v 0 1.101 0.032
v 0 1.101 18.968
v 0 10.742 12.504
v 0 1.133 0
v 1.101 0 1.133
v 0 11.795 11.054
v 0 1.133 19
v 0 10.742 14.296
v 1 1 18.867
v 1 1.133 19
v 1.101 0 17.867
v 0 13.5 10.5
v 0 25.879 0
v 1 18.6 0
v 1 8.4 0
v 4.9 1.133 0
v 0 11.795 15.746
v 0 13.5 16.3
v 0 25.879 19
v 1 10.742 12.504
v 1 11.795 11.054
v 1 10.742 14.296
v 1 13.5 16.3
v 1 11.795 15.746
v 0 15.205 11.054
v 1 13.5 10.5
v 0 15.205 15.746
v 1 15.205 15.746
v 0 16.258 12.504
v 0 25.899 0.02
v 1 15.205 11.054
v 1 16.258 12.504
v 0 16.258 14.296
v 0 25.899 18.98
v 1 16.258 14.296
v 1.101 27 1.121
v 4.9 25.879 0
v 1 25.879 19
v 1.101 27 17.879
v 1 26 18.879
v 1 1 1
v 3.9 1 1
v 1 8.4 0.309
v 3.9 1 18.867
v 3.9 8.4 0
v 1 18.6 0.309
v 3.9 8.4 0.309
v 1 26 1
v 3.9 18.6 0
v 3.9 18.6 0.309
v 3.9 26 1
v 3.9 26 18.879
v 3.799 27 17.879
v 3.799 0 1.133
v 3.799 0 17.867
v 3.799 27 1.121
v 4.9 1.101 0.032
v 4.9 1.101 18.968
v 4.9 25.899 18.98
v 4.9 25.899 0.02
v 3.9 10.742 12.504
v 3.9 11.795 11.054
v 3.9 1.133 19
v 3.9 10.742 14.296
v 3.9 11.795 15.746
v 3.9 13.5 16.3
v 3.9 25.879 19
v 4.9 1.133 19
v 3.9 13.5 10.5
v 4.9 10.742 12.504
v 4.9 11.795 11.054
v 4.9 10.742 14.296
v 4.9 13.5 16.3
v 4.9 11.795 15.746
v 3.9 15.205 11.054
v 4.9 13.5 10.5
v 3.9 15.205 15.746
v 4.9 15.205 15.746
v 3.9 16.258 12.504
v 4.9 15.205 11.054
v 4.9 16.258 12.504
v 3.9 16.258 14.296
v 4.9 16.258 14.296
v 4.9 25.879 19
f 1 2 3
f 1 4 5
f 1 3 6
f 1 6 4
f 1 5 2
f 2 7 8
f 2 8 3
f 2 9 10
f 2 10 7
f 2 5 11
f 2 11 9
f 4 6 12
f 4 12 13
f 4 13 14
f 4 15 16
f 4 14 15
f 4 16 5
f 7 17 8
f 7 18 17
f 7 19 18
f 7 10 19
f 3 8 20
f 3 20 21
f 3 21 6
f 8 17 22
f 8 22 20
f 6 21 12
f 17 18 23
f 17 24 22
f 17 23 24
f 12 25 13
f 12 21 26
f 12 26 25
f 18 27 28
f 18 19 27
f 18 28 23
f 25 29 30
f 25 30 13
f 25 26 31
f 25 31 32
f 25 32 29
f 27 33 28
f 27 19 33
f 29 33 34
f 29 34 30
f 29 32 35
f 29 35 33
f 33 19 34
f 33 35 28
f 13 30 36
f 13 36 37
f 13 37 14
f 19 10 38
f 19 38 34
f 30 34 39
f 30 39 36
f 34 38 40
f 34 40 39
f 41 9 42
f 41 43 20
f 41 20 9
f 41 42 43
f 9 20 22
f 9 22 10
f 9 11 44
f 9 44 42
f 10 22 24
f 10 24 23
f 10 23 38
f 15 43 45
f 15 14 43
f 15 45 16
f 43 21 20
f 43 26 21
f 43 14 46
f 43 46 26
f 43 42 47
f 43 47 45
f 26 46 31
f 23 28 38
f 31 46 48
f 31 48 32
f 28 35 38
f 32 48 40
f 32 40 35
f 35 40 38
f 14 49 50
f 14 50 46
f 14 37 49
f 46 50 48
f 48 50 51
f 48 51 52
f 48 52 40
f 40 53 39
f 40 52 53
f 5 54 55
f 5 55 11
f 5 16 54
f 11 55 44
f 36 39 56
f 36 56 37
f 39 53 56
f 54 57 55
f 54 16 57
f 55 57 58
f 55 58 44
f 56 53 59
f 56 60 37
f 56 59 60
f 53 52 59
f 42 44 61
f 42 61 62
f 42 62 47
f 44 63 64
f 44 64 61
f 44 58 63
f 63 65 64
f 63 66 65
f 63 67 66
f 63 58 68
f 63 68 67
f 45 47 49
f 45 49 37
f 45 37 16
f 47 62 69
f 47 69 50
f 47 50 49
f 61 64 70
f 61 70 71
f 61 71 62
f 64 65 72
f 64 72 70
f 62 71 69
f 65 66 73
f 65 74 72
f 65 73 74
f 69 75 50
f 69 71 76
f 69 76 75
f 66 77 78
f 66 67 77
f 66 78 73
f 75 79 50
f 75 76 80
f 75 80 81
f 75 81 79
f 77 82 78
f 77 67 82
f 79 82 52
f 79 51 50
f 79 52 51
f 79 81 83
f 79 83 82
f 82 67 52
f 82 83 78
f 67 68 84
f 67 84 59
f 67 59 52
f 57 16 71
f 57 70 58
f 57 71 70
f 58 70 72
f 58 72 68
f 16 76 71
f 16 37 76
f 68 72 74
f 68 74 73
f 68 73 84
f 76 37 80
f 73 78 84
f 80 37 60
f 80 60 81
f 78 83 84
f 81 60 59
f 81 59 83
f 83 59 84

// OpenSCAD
/*
Copyright (c) 2023, Peter Felber <effpeter@gmail.com>

Redistribution and use in source and binary forms, with or without modification, are permitted provided that the following conditions are met:

Redistributions of source code must retain the above copyright notice, this list of conditions and the following disclaimer.
Redistributions in binary form must reproduce the above copyright notice, this list of conditions and the following disclaimer in the documentation and/or other materials provided with the distribution.
THIS SOFTWARE IS PROVIDED BY THE COPYRIGHT HOLDERS AND CONTRIBUTORS "AS IS" AND ANY EXPRESS OR IMPLIED WARRANTIES, INCLUDING, BUT NOT LIMITED TO, THE IMPLIED WARRANTIES OF MERCHANTABILITY AND FITNESS FOR A PARTICULAR PURPOSE ARE DISCLAIMED. IN NO EVENT SHALL THE COPYRIGHT OWNER OR CONTRIBUTORS BE LIABLE FOR ANY DIRECT, INDIRECT, INCIDENTAL, SPECIAL, EXEMPLARY, OR CONSEQUENTIAL DAMAGES (INCLUDING, BUT NOT LIMITED TO, PROCUREMENT OF SUBSTITUTE GOODS OR SERVICES; LOSS OF USE, DATA, OR PROFITS; OR BUSINESS INTERRUPTION) HOWEVER CAUSED AND ON ANY THEORY OF LIABILITY, WHETHER IN CONTRACT, STRICT LIABILITY, OR TORT (INCLUDING NEGLIGENCE OR OTHERWISE) ARISING IN ANY WAY OUT OF THE USE OF THIS SOFTWARE, EVEN IF ADVISED OF THE POSSIBILITY OF SUCH DAMAGE.
*/

module prism(l, w, h){
    polyhedron(
        points=[[0,0,0], [l,0,0], [l,w,0], [0,w,0], [0,w,h], [l,w,h]],
        faces=[[0,1,2,3],[5,4,3,2],[0,4,5,1],[0,3,4],[5,2,1]]
    );      
};

module abus_key() {
    translate([0,-5.1,0])
    cube([63.3,10.2,2.9]);
    translate([0,-12.5,0])
    cube([18,25,2.9]);
    translate([18,-12.5,2.9])
    rotate([0,90,0])
    prism(2.9, 7.5, 0.7);
    translate([18,12.5,0])
    rotate([0,-90,180])
    prism(2.9, 7.5, 0.7);
}
module chamfer() {
    translate([9.5,0,1.45])
    rotate([45,0,0])
difference() {
    cube([19,23,23], center = true);
    cube([19,21,21], center = true);
    };
}

// translate to [0,0,0]
translate([1,13.5,19])
rotate([0,90,0])
difference() {
    difference() {
        difference() {
            difference(){
                translate([0,-(25+2)/2,-1])
                cube([18+1,25+2,2.9+2]);
                // subtract key from cap
                abus_key();
            };
            // subtract hole from cap
            translate([2.7+2.9,0,-5])
            linear_extrude(10) {
                circle(d = 5.8);
            };
        };
        // subtract a set of edges to give it a 45 degree chamfer
        chamfer();
    };
    // subtract another set of edges to give it a 45 degree chamfer
    rotate([0,90,90])
    translate([-6,-9.5,-2.13])
    scale([1.473,1.473,1.473])
    chamfer();
};
